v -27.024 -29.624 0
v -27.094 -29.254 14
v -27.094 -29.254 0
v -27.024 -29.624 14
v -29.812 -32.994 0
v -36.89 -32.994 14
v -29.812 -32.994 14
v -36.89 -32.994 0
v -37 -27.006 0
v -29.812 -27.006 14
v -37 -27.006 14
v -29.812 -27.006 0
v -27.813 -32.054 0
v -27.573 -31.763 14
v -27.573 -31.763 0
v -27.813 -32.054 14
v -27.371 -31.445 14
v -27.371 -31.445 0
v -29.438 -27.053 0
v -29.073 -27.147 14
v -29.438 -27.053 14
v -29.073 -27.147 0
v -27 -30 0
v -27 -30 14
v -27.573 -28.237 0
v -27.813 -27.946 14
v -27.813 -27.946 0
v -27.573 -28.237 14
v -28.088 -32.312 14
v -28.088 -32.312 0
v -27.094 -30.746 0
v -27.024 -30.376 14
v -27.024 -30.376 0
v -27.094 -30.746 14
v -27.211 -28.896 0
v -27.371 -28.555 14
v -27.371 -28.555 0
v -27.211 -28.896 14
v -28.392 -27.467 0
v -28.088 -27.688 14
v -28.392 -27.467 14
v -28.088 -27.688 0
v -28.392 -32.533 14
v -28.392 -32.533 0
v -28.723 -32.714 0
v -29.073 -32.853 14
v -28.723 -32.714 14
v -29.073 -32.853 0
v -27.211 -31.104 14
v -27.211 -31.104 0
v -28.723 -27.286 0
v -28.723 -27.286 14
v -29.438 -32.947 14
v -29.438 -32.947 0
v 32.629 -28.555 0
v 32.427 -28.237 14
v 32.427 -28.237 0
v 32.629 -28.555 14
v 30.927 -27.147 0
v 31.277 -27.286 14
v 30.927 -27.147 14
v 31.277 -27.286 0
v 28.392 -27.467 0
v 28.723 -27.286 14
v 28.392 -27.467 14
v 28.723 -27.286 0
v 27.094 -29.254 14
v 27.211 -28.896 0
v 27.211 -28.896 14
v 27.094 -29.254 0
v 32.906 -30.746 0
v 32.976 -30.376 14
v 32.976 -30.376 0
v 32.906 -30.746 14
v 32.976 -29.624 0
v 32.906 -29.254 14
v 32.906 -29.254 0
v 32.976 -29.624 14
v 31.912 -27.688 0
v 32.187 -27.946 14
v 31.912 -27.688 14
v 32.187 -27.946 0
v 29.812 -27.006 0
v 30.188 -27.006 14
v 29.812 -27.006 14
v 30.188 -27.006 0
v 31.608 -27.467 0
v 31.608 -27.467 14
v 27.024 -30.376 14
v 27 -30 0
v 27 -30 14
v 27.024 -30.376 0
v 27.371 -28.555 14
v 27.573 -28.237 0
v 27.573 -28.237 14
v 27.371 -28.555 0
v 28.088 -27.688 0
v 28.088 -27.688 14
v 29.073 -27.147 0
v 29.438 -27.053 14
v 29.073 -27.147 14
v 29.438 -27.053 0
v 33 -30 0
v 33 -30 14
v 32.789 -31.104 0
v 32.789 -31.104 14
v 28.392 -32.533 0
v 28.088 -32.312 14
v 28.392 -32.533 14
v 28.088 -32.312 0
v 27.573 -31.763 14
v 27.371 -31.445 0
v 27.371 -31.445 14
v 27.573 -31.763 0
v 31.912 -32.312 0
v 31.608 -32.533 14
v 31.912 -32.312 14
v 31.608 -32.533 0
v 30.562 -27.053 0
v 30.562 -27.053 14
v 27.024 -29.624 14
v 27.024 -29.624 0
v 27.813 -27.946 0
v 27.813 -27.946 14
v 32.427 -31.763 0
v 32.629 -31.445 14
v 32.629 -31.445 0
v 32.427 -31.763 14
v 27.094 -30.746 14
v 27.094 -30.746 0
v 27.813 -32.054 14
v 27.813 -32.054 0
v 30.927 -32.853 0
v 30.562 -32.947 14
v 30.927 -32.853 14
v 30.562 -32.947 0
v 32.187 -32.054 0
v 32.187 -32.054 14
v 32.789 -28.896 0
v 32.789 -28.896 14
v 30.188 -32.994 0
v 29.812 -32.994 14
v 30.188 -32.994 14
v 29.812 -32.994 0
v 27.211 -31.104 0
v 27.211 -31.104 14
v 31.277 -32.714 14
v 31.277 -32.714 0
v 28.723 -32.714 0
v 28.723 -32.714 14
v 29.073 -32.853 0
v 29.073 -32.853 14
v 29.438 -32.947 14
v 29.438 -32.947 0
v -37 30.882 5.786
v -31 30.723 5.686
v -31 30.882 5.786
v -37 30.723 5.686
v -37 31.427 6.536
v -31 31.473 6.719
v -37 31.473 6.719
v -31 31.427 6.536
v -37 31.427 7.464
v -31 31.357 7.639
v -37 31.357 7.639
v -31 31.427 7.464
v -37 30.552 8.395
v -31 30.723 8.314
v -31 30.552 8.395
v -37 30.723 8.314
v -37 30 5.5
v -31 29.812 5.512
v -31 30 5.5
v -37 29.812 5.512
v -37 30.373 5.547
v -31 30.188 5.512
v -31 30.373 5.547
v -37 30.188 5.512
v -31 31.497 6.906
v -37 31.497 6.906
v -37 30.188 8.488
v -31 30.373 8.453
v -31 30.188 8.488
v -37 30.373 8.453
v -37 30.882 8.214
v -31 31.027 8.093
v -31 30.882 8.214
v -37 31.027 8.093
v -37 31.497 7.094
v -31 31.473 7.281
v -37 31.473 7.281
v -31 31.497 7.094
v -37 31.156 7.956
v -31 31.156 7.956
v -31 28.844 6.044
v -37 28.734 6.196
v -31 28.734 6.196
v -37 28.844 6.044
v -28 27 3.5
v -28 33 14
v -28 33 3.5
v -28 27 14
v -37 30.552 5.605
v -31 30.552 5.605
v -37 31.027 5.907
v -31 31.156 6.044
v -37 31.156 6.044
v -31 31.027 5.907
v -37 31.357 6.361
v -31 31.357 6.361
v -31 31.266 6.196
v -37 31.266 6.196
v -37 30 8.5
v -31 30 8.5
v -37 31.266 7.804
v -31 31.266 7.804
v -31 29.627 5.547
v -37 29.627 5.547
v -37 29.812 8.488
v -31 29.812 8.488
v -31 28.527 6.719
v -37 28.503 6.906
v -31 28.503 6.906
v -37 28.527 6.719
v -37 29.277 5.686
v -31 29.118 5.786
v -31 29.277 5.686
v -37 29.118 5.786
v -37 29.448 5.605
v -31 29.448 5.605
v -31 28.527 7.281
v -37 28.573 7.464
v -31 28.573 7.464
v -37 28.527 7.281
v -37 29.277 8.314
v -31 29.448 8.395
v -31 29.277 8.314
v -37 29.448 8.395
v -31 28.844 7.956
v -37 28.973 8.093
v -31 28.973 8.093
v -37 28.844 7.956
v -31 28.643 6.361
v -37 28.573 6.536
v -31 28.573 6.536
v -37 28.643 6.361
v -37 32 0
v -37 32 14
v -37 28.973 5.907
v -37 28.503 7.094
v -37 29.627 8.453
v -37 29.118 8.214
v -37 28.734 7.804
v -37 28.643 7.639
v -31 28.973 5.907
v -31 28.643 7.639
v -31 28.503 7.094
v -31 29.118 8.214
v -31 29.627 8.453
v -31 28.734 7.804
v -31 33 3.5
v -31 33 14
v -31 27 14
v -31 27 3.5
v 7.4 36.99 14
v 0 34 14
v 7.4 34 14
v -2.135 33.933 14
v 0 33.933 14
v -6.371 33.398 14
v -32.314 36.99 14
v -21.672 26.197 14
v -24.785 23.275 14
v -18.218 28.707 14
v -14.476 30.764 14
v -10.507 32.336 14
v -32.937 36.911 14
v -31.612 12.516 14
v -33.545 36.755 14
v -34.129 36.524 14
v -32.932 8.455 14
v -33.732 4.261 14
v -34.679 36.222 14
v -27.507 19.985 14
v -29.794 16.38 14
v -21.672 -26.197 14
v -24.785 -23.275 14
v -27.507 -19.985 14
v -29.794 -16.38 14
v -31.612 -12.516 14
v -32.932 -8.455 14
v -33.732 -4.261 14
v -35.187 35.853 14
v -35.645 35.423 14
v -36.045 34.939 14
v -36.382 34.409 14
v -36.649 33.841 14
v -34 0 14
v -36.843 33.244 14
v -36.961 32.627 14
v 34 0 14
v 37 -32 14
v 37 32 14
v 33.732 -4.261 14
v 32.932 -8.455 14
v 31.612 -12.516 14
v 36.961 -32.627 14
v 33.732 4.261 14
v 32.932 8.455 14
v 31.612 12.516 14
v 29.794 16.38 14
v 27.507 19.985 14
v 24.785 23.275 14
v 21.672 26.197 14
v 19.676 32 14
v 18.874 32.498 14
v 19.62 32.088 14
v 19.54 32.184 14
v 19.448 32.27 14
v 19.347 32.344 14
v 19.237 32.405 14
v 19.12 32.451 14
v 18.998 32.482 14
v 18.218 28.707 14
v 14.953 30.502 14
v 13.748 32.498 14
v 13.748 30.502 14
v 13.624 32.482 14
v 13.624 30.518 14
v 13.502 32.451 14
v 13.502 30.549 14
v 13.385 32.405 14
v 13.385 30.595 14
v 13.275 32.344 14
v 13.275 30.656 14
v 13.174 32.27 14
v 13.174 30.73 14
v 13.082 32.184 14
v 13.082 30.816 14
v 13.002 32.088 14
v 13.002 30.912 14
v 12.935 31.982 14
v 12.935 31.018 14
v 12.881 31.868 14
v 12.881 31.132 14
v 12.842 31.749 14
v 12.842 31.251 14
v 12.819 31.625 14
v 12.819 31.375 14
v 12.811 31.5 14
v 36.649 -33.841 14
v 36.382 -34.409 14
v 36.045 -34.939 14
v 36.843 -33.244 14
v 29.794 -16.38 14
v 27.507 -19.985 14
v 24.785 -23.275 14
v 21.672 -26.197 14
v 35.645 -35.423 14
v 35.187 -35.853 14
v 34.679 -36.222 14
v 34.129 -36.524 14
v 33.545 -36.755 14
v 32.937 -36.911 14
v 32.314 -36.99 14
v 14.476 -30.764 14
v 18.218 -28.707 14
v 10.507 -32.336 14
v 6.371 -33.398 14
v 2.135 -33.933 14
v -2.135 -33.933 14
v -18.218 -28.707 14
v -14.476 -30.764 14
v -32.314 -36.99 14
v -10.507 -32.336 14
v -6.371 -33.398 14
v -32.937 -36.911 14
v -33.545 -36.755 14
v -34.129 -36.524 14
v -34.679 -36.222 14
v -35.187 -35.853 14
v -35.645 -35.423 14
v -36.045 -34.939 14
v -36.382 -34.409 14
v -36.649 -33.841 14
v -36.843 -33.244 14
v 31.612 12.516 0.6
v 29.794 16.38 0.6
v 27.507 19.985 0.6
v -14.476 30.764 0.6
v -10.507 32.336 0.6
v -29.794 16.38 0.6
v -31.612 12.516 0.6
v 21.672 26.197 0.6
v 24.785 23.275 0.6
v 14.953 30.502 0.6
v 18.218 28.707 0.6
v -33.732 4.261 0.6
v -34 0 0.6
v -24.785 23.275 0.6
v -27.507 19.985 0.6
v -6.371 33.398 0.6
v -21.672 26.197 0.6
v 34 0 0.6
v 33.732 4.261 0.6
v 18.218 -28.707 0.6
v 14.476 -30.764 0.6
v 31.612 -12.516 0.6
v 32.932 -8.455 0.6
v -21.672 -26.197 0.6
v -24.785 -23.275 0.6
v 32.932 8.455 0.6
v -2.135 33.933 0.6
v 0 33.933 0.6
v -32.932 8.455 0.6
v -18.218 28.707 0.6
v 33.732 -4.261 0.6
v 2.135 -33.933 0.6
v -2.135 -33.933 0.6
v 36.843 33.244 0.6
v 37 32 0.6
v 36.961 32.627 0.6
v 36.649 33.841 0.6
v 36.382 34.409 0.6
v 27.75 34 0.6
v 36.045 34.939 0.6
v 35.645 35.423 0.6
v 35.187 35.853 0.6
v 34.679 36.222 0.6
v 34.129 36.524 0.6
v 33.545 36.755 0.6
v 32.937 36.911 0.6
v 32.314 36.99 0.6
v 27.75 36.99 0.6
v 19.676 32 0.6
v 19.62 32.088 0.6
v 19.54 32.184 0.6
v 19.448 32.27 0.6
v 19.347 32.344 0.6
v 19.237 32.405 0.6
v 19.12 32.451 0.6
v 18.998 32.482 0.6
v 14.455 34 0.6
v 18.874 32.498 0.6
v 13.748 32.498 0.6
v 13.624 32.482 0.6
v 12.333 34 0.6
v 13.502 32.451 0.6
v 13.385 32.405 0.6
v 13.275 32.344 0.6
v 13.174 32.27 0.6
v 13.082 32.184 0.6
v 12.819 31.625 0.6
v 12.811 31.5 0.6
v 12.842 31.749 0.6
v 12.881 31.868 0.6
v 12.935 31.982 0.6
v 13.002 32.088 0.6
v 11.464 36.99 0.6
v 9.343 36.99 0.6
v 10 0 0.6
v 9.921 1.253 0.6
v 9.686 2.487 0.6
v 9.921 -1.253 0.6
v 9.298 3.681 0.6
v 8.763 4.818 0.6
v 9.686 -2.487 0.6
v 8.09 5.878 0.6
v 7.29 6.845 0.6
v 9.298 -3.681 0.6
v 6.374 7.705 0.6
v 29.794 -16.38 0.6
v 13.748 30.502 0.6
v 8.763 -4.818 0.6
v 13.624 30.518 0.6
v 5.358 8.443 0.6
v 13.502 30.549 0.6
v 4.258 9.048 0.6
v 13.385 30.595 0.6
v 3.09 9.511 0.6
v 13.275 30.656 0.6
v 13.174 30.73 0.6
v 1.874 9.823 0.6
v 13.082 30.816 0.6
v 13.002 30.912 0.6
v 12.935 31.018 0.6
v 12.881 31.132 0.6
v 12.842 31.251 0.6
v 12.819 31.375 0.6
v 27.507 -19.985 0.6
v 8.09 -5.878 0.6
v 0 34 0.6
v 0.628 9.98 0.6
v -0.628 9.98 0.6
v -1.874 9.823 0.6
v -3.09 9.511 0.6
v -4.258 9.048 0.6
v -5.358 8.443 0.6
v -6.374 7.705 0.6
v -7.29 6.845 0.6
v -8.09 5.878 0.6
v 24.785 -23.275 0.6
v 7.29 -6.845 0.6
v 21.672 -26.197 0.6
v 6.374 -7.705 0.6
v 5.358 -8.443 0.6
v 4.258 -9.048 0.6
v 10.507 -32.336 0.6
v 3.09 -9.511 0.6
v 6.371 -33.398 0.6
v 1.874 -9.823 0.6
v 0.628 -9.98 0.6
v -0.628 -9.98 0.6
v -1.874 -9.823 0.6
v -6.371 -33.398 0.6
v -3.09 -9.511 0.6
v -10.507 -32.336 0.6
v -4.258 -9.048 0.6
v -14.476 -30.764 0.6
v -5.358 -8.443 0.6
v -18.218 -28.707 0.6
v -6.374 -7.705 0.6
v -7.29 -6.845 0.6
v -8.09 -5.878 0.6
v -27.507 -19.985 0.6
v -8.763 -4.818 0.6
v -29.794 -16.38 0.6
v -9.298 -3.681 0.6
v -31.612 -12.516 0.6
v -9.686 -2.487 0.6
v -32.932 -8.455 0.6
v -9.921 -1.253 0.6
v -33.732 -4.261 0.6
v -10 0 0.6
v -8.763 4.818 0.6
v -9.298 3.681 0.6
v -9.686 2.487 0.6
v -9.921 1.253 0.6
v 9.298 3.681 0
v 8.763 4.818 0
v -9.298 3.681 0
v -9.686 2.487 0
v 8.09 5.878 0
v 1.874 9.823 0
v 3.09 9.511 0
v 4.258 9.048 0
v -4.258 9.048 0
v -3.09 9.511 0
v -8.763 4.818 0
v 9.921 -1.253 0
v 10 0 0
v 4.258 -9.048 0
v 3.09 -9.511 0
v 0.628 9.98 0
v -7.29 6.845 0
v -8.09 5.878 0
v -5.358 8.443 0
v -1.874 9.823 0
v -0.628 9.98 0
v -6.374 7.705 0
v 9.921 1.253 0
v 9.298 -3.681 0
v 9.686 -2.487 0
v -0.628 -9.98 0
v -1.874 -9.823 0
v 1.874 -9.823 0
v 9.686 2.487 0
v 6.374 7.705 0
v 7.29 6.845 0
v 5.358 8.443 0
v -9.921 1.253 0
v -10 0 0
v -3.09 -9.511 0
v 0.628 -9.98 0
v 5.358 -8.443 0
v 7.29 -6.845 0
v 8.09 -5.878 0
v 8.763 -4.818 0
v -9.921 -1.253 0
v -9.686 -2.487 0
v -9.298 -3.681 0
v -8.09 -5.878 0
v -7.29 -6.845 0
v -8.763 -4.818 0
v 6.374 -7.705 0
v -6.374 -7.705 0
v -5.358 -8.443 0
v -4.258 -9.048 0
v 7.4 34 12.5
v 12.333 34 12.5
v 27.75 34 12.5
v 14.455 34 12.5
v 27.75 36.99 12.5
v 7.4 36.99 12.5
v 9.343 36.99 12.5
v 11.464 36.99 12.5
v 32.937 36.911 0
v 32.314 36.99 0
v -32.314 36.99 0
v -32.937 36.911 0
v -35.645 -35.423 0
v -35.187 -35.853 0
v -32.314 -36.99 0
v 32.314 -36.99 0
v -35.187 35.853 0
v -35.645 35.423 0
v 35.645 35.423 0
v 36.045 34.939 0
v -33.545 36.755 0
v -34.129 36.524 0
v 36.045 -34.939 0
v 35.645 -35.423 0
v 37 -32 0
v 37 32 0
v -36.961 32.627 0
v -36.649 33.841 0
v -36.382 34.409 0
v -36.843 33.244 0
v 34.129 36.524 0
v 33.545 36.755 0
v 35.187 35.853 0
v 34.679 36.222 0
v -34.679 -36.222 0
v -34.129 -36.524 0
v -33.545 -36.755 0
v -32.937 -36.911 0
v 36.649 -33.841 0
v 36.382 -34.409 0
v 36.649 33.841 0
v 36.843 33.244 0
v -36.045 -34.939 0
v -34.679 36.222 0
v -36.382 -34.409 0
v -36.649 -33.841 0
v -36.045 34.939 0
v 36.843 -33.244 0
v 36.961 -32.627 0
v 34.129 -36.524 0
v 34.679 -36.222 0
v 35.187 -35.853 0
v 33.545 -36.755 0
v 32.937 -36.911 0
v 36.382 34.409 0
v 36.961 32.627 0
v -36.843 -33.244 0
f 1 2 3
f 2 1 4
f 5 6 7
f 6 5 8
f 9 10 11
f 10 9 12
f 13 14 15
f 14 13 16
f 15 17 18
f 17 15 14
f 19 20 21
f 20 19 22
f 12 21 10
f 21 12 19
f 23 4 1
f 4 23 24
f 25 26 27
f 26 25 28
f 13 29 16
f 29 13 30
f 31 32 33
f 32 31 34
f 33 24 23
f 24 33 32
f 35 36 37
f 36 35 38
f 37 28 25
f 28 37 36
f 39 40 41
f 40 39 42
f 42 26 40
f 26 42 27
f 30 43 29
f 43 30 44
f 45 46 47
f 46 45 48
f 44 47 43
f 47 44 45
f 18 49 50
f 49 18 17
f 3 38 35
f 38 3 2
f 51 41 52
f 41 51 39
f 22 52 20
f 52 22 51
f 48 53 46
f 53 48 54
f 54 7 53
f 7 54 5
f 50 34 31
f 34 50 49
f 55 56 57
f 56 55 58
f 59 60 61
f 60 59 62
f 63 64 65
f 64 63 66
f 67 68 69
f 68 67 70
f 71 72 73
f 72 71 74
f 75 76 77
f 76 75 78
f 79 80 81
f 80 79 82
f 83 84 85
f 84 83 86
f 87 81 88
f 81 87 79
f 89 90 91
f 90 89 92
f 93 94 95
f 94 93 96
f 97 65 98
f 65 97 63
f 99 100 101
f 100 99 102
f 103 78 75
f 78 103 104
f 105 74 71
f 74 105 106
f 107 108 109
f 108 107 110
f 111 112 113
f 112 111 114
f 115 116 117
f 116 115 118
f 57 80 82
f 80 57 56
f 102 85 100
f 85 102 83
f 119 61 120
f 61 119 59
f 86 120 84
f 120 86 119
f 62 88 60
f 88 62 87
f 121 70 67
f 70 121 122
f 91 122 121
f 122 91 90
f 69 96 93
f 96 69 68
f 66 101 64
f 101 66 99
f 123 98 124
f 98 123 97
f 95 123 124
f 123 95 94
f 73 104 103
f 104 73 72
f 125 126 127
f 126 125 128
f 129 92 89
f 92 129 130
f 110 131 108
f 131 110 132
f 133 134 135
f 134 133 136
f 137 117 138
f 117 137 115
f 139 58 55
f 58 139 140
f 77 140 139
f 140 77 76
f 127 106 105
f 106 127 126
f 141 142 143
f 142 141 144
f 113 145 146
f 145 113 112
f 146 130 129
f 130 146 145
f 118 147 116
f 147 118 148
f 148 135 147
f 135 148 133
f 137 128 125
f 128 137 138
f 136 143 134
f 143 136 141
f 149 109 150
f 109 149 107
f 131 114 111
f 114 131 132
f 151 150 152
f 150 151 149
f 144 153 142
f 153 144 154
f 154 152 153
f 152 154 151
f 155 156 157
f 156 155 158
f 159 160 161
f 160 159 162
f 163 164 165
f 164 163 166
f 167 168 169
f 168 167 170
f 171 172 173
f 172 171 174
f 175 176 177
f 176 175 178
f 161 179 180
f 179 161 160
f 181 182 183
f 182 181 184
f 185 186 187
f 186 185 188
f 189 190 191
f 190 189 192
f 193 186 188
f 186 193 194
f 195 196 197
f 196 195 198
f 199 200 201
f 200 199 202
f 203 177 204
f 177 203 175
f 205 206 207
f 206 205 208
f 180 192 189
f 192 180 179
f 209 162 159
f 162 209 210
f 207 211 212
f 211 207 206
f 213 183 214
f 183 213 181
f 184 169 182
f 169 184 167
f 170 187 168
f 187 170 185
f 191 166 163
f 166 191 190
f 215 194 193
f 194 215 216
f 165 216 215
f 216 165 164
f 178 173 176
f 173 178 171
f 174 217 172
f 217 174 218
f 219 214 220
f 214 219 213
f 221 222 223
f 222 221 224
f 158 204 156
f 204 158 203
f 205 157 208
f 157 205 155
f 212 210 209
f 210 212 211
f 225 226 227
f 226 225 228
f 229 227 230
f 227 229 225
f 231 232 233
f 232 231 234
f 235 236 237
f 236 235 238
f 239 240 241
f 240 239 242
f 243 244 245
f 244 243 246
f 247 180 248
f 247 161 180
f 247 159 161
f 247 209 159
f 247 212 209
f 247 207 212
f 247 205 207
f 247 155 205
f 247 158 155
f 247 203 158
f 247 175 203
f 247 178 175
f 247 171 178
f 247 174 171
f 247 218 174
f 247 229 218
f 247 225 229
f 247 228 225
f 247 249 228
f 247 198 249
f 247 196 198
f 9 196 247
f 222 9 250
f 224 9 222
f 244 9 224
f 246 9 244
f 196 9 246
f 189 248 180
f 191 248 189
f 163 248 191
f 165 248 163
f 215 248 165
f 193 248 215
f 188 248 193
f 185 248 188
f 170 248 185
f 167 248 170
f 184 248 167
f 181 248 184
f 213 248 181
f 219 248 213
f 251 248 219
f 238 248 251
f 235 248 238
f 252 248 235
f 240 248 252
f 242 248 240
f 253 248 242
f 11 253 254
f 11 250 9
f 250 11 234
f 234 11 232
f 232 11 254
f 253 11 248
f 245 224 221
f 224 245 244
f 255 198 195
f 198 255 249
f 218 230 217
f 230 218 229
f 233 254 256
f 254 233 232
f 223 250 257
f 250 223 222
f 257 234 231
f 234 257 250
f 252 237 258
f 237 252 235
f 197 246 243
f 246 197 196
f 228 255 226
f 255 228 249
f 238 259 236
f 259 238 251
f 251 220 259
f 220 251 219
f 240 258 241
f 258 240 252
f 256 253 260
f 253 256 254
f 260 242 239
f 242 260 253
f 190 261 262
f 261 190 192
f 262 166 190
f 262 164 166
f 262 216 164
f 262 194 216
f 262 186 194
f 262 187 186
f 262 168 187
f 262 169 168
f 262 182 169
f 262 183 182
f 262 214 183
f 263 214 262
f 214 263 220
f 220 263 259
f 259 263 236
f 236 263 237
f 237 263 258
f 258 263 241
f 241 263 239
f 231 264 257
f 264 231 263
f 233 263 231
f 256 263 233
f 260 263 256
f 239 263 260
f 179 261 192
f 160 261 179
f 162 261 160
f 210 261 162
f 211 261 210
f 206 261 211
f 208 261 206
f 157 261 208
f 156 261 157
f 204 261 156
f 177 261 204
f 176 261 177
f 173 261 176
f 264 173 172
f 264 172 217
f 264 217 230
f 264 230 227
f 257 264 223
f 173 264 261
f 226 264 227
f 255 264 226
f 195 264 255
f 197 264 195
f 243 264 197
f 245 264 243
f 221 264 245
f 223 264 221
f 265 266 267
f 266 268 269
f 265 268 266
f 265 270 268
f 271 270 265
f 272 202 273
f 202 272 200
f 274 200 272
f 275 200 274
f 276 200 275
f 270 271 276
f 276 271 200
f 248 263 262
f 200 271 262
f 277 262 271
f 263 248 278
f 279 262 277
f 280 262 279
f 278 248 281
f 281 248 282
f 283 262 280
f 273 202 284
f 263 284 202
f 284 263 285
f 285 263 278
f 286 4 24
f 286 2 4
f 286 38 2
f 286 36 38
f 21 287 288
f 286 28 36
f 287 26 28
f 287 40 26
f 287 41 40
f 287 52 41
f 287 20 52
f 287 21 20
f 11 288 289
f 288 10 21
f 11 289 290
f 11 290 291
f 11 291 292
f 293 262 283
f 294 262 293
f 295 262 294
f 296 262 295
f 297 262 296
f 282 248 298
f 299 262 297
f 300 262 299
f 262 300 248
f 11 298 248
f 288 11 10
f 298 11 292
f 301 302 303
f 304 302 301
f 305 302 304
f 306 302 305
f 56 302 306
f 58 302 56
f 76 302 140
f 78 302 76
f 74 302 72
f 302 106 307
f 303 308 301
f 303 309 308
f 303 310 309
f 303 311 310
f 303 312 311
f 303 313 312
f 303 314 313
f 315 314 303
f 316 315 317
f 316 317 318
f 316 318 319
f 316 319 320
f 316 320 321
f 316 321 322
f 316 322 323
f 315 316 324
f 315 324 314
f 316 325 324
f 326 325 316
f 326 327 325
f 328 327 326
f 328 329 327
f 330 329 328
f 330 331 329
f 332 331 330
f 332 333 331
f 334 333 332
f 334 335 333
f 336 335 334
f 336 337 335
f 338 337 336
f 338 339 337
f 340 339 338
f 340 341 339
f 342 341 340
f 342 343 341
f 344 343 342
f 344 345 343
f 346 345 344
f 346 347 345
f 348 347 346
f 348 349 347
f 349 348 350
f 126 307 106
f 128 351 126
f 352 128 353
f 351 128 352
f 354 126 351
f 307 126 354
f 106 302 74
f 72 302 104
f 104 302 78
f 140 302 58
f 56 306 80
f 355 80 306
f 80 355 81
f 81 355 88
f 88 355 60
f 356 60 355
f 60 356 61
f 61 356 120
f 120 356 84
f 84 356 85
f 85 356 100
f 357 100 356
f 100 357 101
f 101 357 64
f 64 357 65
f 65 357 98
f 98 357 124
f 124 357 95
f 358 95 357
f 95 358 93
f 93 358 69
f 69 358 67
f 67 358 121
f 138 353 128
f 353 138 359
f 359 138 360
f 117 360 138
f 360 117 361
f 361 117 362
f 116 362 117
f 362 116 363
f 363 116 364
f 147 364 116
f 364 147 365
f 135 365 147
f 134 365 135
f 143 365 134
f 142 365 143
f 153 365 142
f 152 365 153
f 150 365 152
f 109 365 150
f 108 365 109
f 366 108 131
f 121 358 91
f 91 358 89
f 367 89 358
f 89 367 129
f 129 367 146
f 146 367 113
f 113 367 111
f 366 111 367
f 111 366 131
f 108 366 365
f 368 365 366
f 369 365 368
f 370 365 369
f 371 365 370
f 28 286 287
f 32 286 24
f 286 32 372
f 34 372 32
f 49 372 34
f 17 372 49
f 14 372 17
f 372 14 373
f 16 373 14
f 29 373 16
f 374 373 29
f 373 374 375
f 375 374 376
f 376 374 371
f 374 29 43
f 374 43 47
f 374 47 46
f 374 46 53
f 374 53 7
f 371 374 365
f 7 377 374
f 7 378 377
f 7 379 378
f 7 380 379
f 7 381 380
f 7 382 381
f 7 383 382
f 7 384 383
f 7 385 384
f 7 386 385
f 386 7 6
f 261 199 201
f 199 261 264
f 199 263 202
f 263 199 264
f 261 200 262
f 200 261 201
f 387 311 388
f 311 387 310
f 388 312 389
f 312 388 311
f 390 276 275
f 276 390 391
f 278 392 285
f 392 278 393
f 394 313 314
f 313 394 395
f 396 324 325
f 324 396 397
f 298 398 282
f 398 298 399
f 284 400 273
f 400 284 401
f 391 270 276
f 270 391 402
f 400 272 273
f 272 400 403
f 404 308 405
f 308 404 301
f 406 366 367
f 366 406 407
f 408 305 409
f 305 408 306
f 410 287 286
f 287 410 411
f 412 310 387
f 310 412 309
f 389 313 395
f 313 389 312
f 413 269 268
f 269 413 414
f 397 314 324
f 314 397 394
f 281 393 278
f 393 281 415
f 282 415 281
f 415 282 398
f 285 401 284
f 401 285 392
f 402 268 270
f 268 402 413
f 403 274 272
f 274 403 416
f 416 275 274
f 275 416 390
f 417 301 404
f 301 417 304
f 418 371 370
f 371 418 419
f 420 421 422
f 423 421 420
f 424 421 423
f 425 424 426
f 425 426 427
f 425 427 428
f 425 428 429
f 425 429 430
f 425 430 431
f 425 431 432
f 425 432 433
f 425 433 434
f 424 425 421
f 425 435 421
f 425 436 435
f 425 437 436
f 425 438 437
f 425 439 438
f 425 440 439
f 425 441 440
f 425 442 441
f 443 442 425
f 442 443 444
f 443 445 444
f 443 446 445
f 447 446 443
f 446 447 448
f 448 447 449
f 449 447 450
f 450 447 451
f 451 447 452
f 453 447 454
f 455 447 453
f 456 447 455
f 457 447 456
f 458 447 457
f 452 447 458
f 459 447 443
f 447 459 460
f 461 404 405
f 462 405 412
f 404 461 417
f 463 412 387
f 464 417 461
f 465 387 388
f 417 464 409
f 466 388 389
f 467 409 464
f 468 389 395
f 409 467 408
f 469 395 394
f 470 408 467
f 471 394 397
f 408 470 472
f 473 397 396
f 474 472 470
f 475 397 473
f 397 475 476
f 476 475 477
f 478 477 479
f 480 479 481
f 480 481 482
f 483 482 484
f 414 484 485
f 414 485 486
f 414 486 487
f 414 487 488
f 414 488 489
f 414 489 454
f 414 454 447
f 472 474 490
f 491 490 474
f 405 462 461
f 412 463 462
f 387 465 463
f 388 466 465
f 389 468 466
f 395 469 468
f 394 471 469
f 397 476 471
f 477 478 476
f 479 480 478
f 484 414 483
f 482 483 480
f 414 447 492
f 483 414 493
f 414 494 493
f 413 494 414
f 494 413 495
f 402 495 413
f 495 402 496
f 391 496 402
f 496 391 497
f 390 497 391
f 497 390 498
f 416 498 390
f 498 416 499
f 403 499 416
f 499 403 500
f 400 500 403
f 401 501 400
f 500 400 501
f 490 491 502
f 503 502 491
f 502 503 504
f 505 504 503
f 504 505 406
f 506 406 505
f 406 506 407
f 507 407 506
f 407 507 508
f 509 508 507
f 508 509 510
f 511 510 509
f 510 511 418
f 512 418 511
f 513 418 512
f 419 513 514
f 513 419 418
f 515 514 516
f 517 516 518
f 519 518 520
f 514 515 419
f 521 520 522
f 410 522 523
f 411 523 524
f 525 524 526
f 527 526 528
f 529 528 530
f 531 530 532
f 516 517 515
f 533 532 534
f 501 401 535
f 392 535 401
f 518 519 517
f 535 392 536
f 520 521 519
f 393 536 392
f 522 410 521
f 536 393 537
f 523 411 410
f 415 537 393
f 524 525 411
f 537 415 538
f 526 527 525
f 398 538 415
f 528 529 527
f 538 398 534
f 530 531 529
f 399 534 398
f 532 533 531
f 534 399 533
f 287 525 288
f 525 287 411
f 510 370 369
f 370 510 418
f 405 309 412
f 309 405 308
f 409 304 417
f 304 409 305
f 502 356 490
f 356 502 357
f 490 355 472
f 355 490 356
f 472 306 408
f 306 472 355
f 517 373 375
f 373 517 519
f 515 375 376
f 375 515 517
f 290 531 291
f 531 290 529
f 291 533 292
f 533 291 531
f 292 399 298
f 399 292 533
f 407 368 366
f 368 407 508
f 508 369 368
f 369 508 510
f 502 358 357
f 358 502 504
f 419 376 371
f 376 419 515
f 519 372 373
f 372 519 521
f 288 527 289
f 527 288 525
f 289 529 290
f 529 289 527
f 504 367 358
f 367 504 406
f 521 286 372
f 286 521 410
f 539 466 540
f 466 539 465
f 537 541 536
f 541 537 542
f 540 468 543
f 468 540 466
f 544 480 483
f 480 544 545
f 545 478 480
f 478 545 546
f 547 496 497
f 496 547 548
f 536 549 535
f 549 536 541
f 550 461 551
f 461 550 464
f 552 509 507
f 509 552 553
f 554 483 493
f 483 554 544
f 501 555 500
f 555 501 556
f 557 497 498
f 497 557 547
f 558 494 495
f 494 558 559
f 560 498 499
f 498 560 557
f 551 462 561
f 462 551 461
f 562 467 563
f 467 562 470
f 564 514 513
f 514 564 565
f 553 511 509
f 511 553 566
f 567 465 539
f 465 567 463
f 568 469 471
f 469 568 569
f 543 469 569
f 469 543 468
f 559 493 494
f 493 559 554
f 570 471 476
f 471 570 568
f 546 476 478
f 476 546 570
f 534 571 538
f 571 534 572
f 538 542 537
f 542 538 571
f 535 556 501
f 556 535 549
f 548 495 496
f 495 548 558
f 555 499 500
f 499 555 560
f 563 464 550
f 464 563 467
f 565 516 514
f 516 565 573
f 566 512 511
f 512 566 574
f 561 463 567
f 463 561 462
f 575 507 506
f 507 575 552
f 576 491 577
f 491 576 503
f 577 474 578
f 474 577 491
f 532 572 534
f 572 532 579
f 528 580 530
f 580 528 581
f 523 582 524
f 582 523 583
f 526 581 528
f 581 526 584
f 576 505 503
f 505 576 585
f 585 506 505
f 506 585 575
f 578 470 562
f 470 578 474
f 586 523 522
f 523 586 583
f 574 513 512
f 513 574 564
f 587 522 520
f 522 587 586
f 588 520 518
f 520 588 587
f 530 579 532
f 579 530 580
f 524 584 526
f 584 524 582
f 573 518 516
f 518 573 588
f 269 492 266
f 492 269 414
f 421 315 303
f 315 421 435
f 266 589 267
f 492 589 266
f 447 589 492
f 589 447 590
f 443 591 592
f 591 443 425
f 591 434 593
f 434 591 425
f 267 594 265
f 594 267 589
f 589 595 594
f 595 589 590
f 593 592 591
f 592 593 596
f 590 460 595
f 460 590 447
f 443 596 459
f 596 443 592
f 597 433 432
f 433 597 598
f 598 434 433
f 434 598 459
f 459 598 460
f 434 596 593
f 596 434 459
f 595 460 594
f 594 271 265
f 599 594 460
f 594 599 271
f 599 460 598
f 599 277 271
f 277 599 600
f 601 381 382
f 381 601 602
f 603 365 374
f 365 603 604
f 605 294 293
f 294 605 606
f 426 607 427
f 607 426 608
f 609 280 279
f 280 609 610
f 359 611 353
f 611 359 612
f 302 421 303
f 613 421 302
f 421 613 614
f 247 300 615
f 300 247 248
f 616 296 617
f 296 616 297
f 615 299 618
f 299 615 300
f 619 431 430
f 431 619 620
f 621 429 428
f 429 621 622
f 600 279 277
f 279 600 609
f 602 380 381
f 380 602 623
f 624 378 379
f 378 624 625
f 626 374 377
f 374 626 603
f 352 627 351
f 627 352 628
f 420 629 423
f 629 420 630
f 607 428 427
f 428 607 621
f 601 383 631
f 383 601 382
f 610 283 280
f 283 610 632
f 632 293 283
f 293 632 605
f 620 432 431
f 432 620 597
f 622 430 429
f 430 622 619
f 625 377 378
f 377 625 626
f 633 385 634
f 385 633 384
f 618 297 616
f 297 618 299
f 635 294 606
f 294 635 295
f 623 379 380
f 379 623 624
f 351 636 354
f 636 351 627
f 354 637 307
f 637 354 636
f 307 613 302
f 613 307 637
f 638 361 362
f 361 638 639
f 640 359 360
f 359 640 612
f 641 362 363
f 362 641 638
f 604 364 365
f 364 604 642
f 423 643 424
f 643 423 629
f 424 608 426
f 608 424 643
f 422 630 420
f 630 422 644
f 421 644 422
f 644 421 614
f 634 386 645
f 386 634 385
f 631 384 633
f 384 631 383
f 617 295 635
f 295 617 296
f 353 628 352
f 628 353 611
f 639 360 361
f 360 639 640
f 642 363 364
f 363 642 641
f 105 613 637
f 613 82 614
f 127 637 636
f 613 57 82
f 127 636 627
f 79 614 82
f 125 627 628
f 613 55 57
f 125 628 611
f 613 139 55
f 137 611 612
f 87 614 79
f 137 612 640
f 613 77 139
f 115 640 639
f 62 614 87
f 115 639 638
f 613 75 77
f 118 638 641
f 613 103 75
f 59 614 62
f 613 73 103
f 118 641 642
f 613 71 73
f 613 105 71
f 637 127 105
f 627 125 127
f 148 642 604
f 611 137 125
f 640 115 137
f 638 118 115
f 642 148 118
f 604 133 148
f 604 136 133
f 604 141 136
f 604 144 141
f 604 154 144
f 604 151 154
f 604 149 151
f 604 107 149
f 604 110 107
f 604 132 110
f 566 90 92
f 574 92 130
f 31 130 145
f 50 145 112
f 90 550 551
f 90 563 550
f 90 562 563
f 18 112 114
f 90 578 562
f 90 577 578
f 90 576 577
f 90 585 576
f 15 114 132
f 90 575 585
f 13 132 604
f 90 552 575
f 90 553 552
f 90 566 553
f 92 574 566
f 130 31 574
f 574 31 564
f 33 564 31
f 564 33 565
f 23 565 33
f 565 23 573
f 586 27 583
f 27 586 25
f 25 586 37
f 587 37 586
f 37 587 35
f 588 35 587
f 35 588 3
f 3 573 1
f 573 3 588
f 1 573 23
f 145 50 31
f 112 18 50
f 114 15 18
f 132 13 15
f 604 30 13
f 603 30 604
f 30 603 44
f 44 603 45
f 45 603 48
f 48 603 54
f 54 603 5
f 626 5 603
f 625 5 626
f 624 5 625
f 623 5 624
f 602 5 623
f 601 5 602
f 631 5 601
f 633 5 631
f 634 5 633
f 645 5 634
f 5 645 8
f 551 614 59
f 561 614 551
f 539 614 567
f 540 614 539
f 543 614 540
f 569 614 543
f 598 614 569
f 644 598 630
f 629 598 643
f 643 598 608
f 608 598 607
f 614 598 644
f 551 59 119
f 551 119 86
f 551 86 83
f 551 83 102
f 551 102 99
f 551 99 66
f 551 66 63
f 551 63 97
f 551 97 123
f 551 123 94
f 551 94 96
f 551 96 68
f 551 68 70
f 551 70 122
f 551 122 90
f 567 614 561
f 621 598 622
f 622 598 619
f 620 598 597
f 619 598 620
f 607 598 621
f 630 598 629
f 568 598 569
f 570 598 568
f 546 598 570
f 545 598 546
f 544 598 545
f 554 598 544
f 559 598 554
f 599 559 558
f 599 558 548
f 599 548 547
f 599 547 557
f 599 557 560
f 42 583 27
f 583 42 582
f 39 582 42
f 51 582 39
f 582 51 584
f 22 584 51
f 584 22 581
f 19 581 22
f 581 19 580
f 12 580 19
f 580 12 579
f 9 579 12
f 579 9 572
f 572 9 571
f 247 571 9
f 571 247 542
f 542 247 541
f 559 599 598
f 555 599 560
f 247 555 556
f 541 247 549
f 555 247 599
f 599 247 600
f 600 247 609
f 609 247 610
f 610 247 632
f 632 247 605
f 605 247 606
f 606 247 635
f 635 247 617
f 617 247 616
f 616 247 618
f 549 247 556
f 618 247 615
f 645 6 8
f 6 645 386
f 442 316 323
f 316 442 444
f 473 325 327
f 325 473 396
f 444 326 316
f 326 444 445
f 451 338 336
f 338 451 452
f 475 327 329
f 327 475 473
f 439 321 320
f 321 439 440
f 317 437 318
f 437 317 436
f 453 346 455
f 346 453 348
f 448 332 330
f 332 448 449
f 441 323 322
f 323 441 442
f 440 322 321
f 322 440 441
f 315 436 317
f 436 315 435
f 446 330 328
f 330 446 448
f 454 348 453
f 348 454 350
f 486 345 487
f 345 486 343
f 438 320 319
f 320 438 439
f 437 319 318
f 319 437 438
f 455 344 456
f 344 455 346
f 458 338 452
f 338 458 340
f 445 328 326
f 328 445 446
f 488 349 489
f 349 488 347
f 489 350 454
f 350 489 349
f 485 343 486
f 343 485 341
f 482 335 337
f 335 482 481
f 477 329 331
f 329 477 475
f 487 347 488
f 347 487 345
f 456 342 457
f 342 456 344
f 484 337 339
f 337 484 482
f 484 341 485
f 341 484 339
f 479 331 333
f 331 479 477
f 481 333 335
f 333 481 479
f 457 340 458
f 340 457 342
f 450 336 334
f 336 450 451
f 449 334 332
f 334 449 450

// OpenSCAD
$fn = 50;


union() {
	difference() {
		union() {
			translate(v = [0, 0, 0]) {
				rotate(a = [0, 0, 0]) {
					hull() {
						translate(v = [-32.0000000000, 32.0000000000, 0]) {
							rotate(a = [0, 0, 0]) {
								translate(v = [0, 0, 0]) {
									rotate(a = [0, 0, 0]) {
										cylinder(h = 14, r = 5);
									}
								}
							}
						}
						translate(v = [32.0000000000, 32.0000000000, 0]) {
							rotate(a = [0, 0, 0]) {
								translate(v = [0, 0, 0]) {
									rotate(a = [0, 0, 0]) {
										cylinder(h = 14, r = 5);
									}
								}
							}
						}
						translate(v = [-32.0000000000, -32.0000000000, 0]) {
							rotate(a = [0, 0, 0]) {
								translate(v = [0, 0, 0]) {
									rotate(a = [0, 0, 0]) {
										cylinder(h = 14, r = 5);
									}
								}
							}
						}
						translate(v = [32.0000000000, -32.0000000000, 0]) {
							rotate(a = [0, 0, 0]) {
								translate(v = [0, 0, 0]) {
									rotate(a = [0, 0, 0]) {
										cylinder(h = 14, r = 5);
									}
								}
							}
						}
					}
				}
			}
		}
		union() {
			translate(v = [-37.5000000000, -30.0000000000, -125]) {
				rotate(a = [0, 0, 0]) {
					hull() {
						translate(v = [7.5000000000, 0, 0]) {
							rotate(a = [0, 0, 0]) {
								translate(v = [0, 0, 0]) {
									rotate(a = [0, 0, 0]) {
										cylinder(h = 250, r = 3.0000000000);
									}
								}
							}
						}
						translate(v = [-7.5000000000, 0, 0]) {
							rotate(a = [0, 0, 0]) {
								translate(v = [0, 0, 0]) {
									rotate(a = [0, 0, 0]) {
										cylinder(h = 250, r = 3.0000000000);
									}
								}
							}
						}
					}
				}
			}
			translate(v = [30.0000000000, -30.0000000000, -125.0000000000]) {
				rotate(a = [0, 0, 0]) {
					cylinder(h = 250, r = 3.0000000000);
				}
			}
			translate(v = [-37.0000000000, 30.0000000000, 7.0000000000]) {
				rotate(a = [0, 90, 0]) {
					cylinder(h = 9, r = 1.5000000000);
				}
			}
			translate(v = [-31.0000000000, 27.0000000000, 3.5000000000]) {
				rotate(a = [0, 0, 0]) {
					cube(size = [3, 6, 10.5000000000]);
				}
			}
			translate(v = [0, 0, 0.6000000000]) {
				rotate(a = [0, 0, 0]) {
					cylinder(h = 16.4000000000, r = 34.0000000000);
				}
			}
			translate(v = [0, 0, -7.0000000000]) {
				rotate(a = [0, 0, 0]) {
					cylinder(h = 14, r = 10.0000000000);
				}
			}
			translate(v = [0.0000000000, 32.0000000000, 0.6000000000]) {
				rotate(a = [0, 0, 0]) {
					cube(size = [37.0000000000, 2, 16.4000000000]);
				}
			}
			translate(v = [27.7500000000, 32.0000000000, 0.6000000000]) {
				rotate(a = [0, 0, 0]) {
					cube(size = [9.2500000000, 5, 16.4000000000]);
				}
			}
			translate(v = [7.4000000000, 32.0000000000, 12.5000000000]) {
				rotate(a = [0, 0, 0]) {
					cube(size = [29.6000000000, 5, 1.5000000000]);
				}
			}
			translate(v = [8.5833333333, 37.7500000000, 0.6000000000]) {
				rotate(a = [0, 0, -45]) {
					cube(size = [7.5000000000, 1.5000000000, 16.4000000000]);
				}
			}
			translate(v = [7.0610000000, 30.5000000000, 0.6000000000]) {
				rotate(a = [0, 0, 0]) {
					cube(size = [7.5000000000, 2, 13.4000000000]);
				}
			}
		}
	}
	union() {
		translate(v = [16.3110000000, 31.5000000000, 0]) {
			rotate(a = [0, 0, 0]) {
				hull() {
					translate(v = [2.5000000000, 0, 0]) {
						rotate(a = [0, 0, 0]) {
							translate(v = [0, 0, 0]) {
								rotate(a = [0, 0, 0]) {
									cylinder(h = 14, r = 1.0000000000);
								}
							}
						}
					}
					translate(v = [-2.5000000000, 0, 0]) {
						rotate(a = [0, 0, 0]) {
							translate(v = [0, 0, 0]) {
								rotate(a = [0, 0, 0]) {
									cylinder(h = 14, r = 1.0000000000);
								}
							}
						}
					}
				}
			}
		}
	}
}
